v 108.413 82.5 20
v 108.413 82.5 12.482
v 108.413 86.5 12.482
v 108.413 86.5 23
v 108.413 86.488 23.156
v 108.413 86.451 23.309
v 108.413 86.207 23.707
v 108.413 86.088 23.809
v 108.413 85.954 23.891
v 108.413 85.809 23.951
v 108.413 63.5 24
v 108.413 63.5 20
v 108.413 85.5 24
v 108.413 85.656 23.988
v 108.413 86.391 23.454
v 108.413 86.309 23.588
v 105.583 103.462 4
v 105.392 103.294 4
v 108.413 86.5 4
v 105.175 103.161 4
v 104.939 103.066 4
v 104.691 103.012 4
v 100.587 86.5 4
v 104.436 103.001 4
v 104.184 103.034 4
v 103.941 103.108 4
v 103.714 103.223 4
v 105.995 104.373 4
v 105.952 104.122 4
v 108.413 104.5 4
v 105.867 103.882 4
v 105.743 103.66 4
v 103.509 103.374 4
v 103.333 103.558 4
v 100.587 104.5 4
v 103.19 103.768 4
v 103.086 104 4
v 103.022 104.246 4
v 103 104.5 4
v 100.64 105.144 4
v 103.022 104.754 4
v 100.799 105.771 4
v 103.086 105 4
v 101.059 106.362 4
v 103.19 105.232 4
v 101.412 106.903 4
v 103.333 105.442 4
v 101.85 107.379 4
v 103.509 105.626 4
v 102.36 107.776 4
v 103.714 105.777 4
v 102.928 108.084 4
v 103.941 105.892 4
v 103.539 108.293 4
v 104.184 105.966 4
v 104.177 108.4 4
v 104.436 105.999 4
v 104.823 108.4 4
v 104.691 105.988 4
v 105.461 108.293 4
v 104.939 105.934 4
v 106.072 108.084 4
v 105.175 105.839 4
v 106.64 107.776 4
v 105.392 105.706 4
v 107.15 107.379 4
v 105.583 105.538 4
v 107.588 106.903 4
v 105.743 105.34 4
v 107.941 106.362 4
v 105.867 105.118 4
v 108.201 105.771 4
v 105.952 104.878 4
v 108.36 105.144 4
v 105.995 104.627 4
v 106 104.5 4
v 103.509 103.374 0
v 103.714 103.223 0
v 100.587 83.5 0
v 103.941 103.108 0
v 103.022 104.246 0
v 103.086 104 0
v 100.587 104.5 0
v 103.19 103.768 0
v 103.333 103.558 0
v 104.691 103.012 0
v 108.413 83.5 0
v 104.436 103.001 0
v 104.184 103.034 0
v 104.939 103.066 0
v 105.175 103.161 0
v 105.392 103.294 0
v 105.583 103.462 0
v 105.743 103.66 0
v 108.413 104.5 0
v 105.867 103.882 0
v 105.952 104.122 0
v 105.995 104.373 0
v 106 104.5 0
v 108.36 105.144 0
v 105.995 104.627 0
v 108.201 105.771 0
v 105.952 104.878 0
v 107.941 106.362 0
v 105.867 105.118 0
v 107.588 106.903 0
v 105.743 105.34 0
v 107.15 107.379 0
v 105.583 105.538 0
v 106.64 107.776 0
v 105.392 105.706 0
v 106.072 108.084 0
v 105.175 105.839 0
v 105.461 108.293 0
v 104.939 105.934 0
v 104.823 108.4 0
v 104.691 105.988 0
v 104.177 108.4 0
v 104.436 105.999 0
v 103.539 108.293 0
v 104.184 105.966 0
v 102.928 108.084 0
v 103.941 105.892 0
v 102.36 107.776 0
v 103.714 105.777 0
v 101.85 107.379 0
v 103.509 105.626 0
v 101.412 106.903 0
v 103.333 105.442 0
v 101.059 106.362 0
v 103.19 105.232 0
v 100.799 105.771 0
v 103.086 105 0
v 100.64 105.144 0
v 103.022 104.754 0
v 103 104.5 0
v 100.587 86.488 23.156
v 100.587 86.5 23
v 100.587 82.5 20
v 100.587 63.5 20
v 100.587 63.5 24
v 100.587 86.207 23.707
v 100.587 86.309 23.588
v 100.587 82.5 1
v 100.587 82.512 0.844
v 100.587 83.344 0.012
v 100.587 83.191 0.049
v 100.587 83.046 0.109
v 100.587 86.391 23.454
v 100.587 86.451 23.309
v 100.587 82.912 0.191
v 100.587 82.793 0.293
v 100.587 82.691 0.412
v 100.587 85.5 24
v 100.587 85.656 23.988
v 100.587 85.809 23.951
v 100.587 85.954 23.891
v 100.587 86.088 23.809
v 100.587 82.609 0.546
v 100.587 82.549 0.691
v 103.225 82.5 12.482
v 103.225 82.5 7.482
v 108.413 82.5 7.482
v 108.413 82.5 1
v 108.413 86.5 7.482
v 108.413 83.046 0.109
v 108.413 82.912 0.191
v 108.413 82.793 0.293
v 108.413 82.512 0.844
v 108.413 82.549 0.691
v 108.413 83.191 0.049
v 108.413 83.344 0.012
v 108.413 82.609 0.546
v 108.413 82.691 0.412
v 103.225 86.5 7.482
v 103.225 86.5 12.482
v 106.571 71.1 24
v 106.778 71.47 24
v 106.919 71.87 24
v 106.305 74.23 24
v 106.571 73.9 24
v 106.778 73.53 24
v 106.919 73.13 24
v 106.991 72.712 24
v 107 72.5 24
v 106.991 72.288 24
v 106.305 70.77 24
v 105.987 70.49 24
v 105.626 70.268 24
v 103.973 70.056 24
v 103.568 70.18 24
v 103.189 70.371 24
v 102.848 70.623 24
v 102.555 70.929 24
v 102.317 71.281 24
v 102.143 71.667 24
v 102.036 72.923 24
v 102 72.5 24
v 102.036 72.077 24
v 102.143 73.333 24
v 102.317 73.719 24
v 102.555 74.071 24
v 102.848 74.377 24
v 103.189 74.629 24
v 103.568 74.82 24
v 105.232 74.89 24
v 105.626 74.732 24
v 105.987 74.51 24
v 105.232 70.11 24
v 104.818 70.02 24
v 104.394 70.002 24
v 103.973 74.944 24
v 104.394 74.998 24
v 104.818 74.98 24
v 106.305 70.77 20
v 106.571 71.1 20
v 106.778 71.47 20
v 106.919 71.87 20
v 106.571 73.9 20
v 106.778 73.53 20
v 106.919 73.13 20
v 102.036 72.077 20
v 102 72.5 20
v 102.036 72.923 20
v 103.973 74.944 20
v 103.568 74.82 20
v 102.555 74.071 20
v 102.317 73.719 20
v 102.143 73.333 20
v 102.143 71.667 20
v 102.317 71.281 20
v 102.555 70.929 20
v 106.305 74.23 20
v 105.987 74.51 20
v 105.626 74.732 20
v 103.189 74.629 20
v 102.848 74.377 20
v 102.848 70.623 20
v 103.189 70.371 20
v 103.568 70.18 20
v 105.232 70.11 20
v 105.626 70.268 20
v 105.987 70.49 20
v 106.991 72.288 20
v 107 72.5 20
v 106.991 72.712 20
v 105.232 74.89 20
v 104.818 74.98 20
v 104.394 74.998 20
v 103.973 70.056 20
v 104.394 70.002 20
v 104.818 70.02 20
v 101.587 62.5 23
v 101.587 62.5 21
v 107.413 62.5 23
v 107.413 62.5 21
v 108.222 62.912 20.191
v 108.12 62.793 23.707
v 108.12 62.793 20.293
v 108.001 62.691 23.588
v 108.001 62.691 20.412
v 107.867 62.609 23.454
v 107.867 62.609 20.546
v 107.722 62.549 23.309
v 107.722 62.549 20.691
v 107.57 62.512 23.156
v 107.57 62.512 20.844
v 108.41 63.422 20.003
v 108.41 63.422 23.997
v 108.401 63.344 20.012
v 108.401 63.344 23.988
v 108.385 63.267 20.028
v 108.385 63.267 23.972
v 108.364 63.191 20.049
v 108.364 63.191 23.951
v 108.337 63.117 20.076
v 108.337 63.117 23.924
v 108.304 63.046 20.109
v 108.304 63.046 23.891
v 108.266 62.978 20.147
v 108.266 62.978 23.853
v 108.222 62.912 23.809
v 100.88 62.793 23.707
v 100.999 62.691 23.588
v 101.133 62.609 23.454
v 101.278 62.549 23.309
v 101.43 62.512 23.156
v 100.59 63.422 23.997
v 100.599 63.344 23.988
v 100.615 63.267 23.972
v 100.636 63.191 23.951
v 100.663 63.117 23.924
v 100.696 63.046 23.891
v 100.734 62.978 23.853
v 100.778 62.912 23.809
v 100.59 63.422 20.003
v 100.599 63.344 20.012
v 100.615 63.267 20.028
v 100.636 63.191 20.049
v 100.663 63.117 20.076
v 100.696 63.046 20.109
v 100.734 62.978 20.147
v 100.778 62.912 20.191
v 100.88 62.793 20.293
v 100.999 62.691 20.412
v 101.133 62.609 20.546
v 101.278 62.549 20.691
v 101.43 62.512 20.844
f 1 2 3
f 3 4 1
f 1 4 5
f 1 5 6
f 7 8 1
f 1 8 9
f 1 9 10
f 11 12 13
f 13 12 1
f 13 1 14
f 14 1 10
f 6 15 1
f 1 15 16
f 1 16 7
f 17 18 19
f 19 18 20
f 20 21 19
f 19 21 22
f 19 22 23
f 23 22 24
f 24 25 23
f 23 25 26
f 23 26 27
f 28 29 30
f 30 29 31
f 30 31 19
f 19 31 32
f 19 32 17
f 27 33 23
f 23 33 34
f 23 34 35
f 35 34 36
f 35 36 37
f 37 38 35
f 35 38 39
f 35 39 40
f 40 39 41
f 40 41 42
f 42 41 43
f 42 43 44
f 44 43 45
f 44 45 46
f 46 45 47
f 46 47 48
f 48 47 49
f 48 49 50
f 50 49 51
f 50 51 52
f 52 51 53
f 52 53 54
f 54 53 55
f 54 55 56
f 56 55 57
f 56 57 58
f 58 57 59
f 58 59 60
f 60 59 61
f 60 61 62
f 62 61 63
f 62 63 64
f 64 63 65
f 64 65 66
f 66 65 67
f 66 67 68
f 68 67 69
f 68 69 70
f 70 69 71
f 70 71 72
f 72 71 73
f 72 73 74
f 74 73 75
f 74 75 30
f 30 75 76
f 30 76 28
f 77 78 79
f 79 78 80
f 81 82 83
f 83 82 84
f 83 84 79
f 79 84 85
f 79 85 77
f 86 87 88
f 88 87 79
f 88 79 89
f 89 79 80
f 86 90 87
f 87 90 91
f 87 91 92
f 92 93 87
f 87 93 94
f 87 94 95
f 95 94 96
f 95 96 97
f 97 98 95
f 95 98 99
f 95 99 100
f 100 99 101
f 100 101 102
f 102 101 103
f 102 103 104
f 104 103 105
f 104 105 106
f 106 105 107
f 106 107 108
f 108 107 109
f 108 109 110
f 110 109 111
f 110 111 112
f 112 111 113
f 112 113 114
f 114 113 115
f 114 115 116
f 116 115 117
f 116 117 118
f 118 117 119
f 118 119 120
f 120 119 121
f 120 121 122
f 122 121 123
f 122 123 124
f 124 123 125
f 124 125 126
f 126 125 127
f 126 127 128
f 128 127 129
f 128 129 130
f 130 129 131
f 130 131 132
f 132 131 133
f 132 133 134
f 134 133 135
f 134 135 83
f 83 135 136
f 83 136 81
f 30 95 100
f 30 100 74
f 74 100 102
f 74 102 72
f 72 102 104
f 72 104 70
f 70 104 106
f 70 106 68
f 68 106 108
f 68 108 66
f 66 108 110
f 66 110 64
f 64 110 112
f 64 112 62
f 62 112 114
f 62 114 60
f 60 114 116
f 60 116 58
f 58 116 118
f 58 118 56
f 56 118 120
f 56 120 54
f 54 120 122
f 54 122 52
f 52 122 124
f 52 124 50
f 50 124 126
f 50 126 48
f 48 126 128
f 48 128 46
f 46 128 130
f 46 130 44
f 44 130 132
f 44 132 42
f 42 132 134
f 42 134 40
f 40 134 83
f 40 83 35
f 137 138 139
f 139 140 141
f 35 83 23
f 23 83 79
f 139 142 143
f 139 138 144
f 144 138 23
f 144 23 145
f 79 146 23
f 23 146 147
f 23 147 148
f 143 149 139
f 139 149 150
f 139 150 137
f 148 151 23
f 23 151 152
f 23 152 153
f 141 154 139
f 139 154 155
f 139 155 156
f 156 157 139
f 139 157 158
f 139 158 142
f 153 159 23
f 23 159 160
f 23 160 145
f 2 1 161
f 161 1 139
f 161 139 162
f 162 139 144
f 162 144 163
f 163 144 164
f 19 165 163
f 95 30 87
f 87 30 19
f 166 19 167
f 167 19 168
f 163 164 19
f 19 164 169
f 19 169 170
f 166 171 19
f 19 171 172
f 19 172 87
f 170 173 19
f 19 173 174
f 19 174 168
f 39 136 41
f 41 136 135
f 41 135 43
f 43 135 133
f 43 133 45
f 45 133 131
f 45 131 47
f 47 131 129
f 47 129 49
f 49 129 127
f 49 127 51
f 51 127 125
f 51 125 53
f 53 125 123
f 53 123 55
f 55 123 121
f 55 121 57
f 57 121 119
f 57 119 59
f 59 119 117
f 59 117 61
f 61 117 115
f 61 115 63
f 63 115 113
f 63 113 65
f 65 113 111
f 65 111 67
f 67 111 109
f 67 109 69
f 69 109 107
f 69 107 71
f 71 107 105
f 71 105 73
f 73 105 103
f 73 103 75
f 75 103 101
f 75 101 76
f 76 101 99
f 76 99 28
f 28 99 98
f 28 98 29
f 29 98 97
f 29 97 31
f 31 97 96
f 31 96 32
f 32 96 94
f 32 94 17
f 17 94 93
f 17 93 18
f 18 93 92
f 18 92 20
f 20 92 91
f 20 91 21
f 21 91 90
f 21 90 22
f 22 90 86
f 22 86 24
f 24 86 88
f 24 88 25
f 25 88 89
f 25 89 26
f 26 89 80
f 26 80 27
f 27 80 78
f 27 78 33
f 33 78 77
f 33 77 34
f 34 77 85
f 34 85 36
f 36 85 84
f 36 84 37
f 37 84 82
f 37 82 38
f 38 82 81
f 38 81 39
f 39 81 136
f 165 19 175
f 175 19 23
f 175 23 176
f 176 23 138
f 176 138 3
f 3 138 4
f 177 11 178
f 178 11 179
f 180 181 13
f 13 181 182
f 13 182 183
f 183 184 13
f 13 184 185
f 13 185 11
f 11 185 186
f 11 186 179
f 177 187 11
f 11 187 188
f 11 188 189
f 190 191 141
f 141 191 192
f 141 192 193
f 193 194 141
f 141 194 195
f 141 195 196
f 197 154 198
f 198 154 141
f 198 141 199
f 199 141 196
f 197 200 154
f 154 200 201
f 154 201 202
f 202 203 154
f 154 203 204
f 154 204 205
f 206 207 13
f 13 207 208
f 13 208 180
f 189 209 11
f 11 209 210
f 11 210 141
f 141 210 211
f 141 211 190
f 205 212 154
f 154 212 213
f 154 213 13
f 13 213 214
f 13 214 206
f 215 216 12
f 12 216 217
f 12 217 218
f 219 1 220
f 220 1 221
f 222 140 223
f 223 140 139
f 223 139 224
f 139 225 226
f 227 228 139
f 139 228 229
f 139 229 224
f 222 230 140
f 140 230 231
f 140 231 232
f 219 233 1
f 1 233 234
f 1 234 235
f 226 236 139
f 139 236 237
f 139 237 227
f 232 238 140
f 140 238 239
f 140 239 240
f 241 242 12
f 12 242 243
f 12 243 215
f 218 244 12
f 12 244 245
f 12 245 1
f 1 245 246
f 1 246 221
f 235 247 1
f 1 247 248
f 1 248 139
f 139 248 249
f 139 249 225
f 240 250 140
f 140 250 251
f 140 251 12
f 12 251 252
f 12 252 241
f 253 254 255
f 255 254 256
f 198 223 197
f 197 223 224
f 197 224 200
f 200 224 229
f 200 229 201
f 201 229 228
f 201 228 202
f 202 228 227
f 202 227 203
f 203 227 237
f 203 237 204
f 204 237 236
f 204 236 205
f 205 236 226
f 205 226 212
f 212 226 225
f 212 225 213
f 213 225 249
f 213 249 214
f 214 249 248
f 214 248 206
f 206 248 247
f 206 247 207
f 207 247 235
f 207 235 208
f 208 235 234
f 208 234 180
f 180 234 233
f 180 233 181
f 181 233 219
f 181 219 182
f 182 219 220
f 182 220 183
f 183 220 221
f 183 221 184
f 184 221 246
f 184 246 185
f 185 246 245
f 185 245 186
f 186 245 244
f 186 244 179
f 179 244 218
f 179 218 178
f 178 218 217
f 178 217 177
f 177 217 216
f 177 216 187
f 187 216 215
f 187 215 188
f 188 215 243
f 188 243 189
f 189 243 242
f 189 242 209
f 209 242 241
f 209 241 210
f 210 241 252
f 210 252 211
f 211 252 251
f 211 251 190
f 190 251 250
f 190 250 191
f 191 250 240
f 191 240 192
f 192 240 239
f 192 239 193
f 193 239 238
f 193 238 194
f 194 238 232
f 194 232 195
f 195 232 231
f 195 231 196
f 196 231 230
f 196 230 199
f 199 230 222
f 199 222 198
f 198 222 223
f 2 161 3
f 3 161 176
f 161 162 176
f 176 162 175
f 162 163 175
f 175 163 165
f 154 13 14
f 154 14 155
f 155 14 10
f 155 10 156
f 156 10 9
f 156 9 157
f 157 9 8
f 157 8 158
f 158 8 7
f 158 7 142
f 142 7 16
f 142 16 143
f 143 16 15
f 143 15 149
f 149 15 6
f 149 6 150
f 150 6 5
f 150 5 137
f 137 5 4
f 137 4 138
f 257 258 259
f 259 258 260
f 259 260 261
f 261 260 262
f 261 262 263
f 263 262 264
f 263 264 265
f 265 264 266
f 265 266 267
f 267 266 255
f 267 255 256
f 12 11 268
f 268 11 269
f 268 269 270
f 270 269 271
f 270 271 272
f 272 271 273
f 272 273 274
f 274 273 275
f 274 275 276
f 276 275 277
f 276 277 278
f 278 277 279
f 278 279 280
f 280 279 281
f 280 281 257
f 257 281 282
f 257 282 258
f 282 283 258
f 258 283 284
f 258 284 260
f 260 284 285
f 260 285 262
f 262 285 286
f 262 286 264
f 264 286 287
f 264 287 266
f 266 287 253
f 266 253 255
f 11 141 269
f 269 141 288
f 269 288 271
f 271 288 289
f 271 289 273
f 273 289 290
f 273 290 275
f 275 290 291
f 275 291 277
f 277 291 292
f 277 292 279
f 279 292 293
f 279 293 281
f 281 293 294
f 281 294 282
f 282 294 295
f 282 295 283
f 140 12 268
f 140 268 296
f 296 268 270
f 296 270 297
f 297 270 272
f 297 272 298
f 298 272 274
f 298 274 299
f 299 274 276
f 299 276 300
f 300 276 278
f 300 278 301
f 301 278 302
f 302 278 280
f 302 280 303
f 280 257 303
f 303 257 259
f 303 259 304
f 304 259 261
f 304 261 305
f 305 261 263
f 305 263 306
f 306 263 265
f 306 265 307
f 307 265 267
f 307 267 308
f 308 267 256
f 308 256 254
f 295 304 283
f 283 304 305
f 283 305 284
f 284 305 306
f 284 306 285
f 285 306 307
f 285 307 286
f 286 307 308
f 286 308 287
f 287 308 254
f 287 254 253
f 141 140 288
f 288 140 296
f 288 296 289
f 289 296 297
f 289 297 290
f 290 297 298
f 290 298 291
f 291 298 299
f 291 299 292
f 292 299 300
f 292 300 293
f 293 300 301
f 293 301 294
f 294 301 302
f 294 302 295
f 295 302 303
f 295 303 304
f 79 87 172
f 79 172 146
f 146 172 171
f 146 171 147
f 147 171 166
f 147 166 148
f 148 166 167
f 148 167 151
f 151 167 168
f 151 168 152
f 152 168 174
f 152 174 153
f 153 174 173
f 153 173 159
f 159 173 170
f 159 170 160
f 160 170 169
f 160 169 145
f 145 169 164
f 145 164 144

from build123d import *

# Parameters (mm, degrees)
SKICA1_R                 = 1.5
P_IDAT_VYSUNUT_M1_DEPTH  = 4
SKICA2_W                 = 7.826237638
SKICA2_H                 = 4
P_IDAT_VYSUNUT_M2_DEPTH  = 16
SKICA3_W                 = 7.826237638
SKICA3_H                 = 24
SKICA3_R                 = 2.5
P_IDAT_VYSUNUT_M3_DEPTH  = 4
SKICA4_W                 = 5.18826407
SKICA4_H                 = 5
ODEBRAT_VYSUNUT_M1_DEPTH = 4
ZAOBLIT1_R               = 1
ZAOBLIT2_R               = 1


with BuildPart() as part:
    # Skica1 → Přidat vysunutím1 (new body)
    with BuildSketch(Plane.XY):
        with BuildLine():
            Line((108.413118819, 104.5), (108.413118819, 82.5))
            Line((108.413118819, 82.5), (100.586881181, 82.5))
            Line((100.586881181, 82.5), (100.586881181, 104.5))
            ThreePointArc((100.586881181, 104.5), (104.5, 108.413118819), (108.413118819, 104.5))
        make_face()
        with Locations((104.5, 104.5)):
            Circle(SKICA1_R, mode=Mode.SUBTRACT)
    extrude(amount=P_IDAT_VYSUNUT_M1_DEPTH)

    # Skica2 → Přidat vysunutím2 (add)
    with BuildSketch(Plane.XY.offset(4)):
        with Locations((104.5, 84.5)):
            Rectangle(SKICA2_W, SKICA2_H)
    extrude(amount=P_IDAT_VYSUNUT_M2_DEPTH)

    # Skica3 → Přidat vysunutím3 (add)
    with BuildSketch(Plane.XY.offset(20)):
        with Locations((104.5, 74.5)):
            Rectangle(SKICA3_W, SKICA3_H)
        with Locations((104.5, 72.5)):
            Circle(SKICA3_R, mode=Mode.SUBTRACT)
    extrude(amount=P_IDAT_VYSUNUT_M3_DEPTH)

    # Skica4 → Odebrat vysunutím1 (cut)
    with BuildSketch(Plane(origin=(0, 86.5, 0), x_dir=(1, 0, 0), z_dir=(0, 1, 0))):
        with Locations((105.818986784, -9.982223616)):
            Rectangle(SKICA4_W, SKICA4_H)
    extrude(amount=-ODEBRAT_VYSUNUT_M1_DEPTH, mode=Mode.SUBTRACT)

    # Zaoblit1
    zaoblit1_edges = [part.edges().sort_by_distance(p)[0] for p in [
        (104.5, 86.5, 24),
    ]]
    fillet(zaoblit1_edges, radius=ZAOBLIT1_R)

    # Zaoblit2
    zaoblit2_edges = [part.edges().sort_by_distance(p)[0] for p in [
        (104.5, 62.5, 24),
        (104.5, 62.5, 20),
        (100.586881181, 62.5, 22),
        (108.413118819, 62.5, 22),
        (104.5, 82.5, 0),
    ]]
    fillet(zaoblit2_edges, radius=ZAOBLIT2_R)


solid = part.part
